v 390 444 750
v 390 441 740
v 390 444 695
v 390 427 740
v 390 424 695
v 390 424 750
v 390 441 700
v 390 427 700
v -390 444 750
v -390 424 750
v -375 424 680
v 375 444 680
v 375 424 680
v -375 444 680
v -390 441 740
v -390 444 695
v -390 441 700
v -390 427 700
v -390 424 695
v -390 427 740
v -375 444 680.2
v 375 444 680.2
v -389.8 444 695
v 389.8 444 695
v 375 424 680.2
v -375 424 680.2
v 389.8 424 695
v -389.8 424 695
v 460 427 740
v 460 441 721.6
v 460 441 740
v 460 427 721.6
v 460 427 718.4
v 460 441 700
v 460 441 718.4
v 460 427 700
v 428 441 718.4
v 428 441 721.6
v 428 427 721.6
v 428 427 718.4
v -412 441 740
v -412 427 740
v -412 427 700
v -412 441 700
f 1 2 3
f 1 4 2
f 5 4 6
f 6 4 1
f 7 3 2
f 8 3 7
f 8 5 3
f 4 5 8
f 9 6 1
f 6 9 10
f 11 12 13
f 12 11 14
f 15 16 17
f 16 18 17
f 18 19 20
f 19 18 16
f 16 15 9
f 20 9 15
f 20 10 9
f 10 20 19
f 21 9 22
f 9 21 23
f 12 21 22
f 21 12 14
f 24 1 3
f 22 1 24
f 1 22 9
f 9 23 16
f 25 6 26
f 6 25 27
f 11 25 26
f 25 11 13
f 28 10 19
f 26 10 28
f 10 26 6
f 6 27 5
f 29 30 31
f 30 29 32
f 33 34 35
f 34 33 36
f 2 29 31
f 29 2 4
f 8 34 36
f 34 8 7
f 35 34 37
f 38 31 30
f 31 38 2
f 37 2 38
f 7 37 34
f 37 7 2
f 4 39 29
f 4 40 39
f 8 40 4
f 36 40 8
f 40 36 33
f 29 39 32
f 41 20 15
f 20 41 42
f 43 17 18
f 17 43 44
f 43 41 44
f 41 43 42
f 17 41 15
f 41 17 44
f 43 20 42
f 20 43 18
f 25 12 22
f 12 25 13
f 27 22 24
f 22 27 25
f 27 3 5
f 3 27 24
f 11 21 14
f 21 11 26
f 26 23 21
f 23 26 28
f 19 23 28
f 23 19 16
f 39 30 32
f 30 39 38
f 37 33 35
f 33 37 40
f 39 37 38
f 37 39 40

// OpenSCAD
// file: parts.scad
$fn=40;

// ---- 桌腿 ----

module leg(){
  difference(){
    union(){
      translate([390.000,390.000,0.000]) cube([60.000,60.000,750.000]);
      translate([400.000,400.000,750.000]) cube([40.000,40.000,20.000]);
    }
    // 牙板透榫槽（沿 +x，+y 侧牙板 A 端穿入）
    translate([389.000,426.800,699.800]) cube([62.000,14.400,40.400]);
    // 牙板闷榫槽（沿 +y，+x 侧牙板 B 端）
    translate([426.800,389.000,699.800]) cube([14.400,23.200,40.400]);
  }
}

// ---- 边框 ----

module rail(){
  difference(){
    union(){
      translate([0,0,750]) linear_extrude(height=50) polygon(points=[[-370,370],[370,370],[450.0,450.0],[-450.0,450.0]]);
      translate([420.607,399.393,779.0]) rotate([0,0,-45]) cube([34,40,10],center=true);
    }
    // 面板槽：全长开通至 45° 端面（角部两框的槽合起来成 L 形）
    translate([-450.000,370.000,785.800]) cube([900.000,14.000,6.400]);
    // 腿顶榫卯（两端各半，合起来 40x40x20）
    translate([399.800,399.800,750.000]) cube([40.400,40.400,20.400]);
    translate([-440.200,399.800,750.000]) cube([40.400,40.400,20.400]);
    // 格角暗榫卯
    translate([-398.545,421.455,779.0]) rotate([0,0,45]) cube([34.4,40.4,10.4],center=true);
    // 竹销孔：+x 端穿暗榫，-x 端穿本体
    translate([418,384,750]) cylinder(h=34,r=4.0,$fn=40);
    translate([-384,418,750]) cylinder(h=34,r=4.0,$fn=40);
  }
}

// ---- 牙板 ----

module apron(){
  difference(){
    union(){
      translate([-390.000,424.000,680.000]) cube([780.000,20.000,70.000]);
      // A 端：透榫（390..460）
      translate([390.000,427.000,700.000]) cube([70.000,14.000,40.000]);
      // B 端：闷榫（-412..-390）
      translate([-412.000,427.000,700.000]) cube([22.000,14.000,40.000]);
    }
    hull(){ translate([375.000,423.500,680.000]) cube([15.000,21.000,0.200]); translate([389.800,423.500,680.000]) cube([0.200,21.000,15.000]); }
    hull(){ translate([-390.000,423.500,680.000]) cube([15.000,21.000,0.200]); translate([-390.000,423.500,680.000]) cube([0.200,21.000,15.000]); }
    // 透榫楔槽（横槽，撑开榫头上下两片）
    translate([428.000,426.900,718.400]) cube([32.200,14.200,3.200]);
  }
}

// ---- 面板-边板 ----

module panel_outer(){
  difference(){
    union(){
      translate([-365.000,-365.000,778.000]) cube([730.000,244.000,22.000]);
      translate([0,0,786]) linear_extrude(height=6) polygon(points=[[-379,-121],[-379,-377],[-377,-379],[377,-379],[379,-377],[379,-121],[365,-121],[365,-365],[-365,-365],[-365,-121]]);
    }
    // 内侧龙凤榫槽（向板内 8 深：y -129..-121）
    translate([-365.000,-129.000,785.800]) cube([730.000,8.000,6.400]);
    // 穿带燕尾槽
    hull(){ translate([-259.200,-365.000,778.000]) cube([30.400,244.000,0.100]); translate([-266.200,-365.000,783.900]) cube([44.400,244.000,0.100]); }
    hull(){ translate([-15.200,-365.000,778.000]) cube([30.400,244.000,0.100]); translate([-22.200,-365.000,783.900]) cube([44.400,244.000,0.100]); }
    hull(){ translate([228.800,-365.000,778.000]) cube([30.400,244.000,0.100]); translate([221.800,-365.000,783.900]) cube([44.400,244.000,0.100]); }
  }
}

// ---- 面板-中板 ----

module panel_middle(){
  difference(){
    union(){
      translate([-365.000,-121.000,778.000]) cube([730.000,242.000,22.000]);
      translate([365.000,-121.000,786.000]) cube([14.000,242.000,6.000]);
      translate([-379.000,-121.000,786.000]) cube([14.000,242.000,6.000]);
    }
    // 两侧龙凤榫槽（各向板内 8 深）
    translate([-365.000,-121.000,785.800]) cube([730.000,8.000,6.400]);
    translate([-365.000,113.000,785.800]) cube([730.000,8.000,6.400]);
    hull(){ translate([-259.200,-121.000,778.000]) cube([30.400,242.000,0.100]); translate([-266.200,-121.000,783.900]) cube([44.400,242.000,0.100]); }
    hull(){ translate([-15.200,-121.000,778.000]) cube([30.400,242.000,0.100]); translate([-22.200,-121.000,783.900]) cube([44.400,242.000,0.100]); }
    hull(){ translate([228.800,-121.000,778.000]) cube([30.400,242.000,0.100]); translate([221.800,-121.000,783.900]) cube([44.400,242.000,0.100]); }
  }
}

// ---- 穿带 ----

module cleat(){
  union(){
    translate([-20.000,-363.000,752.000]) cube([40.000,726.000,26.000]);
    hull(){
      translate([-15.000,-363.000,777.900]) cube([30.000,726.000,0.050]);
      translate([-22.000,-363.000,783.800]) cube([44.000,726.000,0.100]);
    }
  }
}

// ---- 穿簧 ----
module spline(){ translate([-360.000,-7.800,786.100]) cube([720.000,15.600,5.800]); }
// ---- 木楔 ----
module wedge(){ hull(){ translate([435.000,427.400,719.400]) cube([1.000,13.200,1.200]); translate([467.000,427.400,718.500]) cube([1.000,13.200,3.000]); } }
// ---- 竹销 ----
module pin(){ translate([0,0,750]) cylinder(h=34,r=4.0,$fn=40); }
// main file
// 牙板（0° 基准件，位于整机坐标系中）
include <parts.scad>
apron();
